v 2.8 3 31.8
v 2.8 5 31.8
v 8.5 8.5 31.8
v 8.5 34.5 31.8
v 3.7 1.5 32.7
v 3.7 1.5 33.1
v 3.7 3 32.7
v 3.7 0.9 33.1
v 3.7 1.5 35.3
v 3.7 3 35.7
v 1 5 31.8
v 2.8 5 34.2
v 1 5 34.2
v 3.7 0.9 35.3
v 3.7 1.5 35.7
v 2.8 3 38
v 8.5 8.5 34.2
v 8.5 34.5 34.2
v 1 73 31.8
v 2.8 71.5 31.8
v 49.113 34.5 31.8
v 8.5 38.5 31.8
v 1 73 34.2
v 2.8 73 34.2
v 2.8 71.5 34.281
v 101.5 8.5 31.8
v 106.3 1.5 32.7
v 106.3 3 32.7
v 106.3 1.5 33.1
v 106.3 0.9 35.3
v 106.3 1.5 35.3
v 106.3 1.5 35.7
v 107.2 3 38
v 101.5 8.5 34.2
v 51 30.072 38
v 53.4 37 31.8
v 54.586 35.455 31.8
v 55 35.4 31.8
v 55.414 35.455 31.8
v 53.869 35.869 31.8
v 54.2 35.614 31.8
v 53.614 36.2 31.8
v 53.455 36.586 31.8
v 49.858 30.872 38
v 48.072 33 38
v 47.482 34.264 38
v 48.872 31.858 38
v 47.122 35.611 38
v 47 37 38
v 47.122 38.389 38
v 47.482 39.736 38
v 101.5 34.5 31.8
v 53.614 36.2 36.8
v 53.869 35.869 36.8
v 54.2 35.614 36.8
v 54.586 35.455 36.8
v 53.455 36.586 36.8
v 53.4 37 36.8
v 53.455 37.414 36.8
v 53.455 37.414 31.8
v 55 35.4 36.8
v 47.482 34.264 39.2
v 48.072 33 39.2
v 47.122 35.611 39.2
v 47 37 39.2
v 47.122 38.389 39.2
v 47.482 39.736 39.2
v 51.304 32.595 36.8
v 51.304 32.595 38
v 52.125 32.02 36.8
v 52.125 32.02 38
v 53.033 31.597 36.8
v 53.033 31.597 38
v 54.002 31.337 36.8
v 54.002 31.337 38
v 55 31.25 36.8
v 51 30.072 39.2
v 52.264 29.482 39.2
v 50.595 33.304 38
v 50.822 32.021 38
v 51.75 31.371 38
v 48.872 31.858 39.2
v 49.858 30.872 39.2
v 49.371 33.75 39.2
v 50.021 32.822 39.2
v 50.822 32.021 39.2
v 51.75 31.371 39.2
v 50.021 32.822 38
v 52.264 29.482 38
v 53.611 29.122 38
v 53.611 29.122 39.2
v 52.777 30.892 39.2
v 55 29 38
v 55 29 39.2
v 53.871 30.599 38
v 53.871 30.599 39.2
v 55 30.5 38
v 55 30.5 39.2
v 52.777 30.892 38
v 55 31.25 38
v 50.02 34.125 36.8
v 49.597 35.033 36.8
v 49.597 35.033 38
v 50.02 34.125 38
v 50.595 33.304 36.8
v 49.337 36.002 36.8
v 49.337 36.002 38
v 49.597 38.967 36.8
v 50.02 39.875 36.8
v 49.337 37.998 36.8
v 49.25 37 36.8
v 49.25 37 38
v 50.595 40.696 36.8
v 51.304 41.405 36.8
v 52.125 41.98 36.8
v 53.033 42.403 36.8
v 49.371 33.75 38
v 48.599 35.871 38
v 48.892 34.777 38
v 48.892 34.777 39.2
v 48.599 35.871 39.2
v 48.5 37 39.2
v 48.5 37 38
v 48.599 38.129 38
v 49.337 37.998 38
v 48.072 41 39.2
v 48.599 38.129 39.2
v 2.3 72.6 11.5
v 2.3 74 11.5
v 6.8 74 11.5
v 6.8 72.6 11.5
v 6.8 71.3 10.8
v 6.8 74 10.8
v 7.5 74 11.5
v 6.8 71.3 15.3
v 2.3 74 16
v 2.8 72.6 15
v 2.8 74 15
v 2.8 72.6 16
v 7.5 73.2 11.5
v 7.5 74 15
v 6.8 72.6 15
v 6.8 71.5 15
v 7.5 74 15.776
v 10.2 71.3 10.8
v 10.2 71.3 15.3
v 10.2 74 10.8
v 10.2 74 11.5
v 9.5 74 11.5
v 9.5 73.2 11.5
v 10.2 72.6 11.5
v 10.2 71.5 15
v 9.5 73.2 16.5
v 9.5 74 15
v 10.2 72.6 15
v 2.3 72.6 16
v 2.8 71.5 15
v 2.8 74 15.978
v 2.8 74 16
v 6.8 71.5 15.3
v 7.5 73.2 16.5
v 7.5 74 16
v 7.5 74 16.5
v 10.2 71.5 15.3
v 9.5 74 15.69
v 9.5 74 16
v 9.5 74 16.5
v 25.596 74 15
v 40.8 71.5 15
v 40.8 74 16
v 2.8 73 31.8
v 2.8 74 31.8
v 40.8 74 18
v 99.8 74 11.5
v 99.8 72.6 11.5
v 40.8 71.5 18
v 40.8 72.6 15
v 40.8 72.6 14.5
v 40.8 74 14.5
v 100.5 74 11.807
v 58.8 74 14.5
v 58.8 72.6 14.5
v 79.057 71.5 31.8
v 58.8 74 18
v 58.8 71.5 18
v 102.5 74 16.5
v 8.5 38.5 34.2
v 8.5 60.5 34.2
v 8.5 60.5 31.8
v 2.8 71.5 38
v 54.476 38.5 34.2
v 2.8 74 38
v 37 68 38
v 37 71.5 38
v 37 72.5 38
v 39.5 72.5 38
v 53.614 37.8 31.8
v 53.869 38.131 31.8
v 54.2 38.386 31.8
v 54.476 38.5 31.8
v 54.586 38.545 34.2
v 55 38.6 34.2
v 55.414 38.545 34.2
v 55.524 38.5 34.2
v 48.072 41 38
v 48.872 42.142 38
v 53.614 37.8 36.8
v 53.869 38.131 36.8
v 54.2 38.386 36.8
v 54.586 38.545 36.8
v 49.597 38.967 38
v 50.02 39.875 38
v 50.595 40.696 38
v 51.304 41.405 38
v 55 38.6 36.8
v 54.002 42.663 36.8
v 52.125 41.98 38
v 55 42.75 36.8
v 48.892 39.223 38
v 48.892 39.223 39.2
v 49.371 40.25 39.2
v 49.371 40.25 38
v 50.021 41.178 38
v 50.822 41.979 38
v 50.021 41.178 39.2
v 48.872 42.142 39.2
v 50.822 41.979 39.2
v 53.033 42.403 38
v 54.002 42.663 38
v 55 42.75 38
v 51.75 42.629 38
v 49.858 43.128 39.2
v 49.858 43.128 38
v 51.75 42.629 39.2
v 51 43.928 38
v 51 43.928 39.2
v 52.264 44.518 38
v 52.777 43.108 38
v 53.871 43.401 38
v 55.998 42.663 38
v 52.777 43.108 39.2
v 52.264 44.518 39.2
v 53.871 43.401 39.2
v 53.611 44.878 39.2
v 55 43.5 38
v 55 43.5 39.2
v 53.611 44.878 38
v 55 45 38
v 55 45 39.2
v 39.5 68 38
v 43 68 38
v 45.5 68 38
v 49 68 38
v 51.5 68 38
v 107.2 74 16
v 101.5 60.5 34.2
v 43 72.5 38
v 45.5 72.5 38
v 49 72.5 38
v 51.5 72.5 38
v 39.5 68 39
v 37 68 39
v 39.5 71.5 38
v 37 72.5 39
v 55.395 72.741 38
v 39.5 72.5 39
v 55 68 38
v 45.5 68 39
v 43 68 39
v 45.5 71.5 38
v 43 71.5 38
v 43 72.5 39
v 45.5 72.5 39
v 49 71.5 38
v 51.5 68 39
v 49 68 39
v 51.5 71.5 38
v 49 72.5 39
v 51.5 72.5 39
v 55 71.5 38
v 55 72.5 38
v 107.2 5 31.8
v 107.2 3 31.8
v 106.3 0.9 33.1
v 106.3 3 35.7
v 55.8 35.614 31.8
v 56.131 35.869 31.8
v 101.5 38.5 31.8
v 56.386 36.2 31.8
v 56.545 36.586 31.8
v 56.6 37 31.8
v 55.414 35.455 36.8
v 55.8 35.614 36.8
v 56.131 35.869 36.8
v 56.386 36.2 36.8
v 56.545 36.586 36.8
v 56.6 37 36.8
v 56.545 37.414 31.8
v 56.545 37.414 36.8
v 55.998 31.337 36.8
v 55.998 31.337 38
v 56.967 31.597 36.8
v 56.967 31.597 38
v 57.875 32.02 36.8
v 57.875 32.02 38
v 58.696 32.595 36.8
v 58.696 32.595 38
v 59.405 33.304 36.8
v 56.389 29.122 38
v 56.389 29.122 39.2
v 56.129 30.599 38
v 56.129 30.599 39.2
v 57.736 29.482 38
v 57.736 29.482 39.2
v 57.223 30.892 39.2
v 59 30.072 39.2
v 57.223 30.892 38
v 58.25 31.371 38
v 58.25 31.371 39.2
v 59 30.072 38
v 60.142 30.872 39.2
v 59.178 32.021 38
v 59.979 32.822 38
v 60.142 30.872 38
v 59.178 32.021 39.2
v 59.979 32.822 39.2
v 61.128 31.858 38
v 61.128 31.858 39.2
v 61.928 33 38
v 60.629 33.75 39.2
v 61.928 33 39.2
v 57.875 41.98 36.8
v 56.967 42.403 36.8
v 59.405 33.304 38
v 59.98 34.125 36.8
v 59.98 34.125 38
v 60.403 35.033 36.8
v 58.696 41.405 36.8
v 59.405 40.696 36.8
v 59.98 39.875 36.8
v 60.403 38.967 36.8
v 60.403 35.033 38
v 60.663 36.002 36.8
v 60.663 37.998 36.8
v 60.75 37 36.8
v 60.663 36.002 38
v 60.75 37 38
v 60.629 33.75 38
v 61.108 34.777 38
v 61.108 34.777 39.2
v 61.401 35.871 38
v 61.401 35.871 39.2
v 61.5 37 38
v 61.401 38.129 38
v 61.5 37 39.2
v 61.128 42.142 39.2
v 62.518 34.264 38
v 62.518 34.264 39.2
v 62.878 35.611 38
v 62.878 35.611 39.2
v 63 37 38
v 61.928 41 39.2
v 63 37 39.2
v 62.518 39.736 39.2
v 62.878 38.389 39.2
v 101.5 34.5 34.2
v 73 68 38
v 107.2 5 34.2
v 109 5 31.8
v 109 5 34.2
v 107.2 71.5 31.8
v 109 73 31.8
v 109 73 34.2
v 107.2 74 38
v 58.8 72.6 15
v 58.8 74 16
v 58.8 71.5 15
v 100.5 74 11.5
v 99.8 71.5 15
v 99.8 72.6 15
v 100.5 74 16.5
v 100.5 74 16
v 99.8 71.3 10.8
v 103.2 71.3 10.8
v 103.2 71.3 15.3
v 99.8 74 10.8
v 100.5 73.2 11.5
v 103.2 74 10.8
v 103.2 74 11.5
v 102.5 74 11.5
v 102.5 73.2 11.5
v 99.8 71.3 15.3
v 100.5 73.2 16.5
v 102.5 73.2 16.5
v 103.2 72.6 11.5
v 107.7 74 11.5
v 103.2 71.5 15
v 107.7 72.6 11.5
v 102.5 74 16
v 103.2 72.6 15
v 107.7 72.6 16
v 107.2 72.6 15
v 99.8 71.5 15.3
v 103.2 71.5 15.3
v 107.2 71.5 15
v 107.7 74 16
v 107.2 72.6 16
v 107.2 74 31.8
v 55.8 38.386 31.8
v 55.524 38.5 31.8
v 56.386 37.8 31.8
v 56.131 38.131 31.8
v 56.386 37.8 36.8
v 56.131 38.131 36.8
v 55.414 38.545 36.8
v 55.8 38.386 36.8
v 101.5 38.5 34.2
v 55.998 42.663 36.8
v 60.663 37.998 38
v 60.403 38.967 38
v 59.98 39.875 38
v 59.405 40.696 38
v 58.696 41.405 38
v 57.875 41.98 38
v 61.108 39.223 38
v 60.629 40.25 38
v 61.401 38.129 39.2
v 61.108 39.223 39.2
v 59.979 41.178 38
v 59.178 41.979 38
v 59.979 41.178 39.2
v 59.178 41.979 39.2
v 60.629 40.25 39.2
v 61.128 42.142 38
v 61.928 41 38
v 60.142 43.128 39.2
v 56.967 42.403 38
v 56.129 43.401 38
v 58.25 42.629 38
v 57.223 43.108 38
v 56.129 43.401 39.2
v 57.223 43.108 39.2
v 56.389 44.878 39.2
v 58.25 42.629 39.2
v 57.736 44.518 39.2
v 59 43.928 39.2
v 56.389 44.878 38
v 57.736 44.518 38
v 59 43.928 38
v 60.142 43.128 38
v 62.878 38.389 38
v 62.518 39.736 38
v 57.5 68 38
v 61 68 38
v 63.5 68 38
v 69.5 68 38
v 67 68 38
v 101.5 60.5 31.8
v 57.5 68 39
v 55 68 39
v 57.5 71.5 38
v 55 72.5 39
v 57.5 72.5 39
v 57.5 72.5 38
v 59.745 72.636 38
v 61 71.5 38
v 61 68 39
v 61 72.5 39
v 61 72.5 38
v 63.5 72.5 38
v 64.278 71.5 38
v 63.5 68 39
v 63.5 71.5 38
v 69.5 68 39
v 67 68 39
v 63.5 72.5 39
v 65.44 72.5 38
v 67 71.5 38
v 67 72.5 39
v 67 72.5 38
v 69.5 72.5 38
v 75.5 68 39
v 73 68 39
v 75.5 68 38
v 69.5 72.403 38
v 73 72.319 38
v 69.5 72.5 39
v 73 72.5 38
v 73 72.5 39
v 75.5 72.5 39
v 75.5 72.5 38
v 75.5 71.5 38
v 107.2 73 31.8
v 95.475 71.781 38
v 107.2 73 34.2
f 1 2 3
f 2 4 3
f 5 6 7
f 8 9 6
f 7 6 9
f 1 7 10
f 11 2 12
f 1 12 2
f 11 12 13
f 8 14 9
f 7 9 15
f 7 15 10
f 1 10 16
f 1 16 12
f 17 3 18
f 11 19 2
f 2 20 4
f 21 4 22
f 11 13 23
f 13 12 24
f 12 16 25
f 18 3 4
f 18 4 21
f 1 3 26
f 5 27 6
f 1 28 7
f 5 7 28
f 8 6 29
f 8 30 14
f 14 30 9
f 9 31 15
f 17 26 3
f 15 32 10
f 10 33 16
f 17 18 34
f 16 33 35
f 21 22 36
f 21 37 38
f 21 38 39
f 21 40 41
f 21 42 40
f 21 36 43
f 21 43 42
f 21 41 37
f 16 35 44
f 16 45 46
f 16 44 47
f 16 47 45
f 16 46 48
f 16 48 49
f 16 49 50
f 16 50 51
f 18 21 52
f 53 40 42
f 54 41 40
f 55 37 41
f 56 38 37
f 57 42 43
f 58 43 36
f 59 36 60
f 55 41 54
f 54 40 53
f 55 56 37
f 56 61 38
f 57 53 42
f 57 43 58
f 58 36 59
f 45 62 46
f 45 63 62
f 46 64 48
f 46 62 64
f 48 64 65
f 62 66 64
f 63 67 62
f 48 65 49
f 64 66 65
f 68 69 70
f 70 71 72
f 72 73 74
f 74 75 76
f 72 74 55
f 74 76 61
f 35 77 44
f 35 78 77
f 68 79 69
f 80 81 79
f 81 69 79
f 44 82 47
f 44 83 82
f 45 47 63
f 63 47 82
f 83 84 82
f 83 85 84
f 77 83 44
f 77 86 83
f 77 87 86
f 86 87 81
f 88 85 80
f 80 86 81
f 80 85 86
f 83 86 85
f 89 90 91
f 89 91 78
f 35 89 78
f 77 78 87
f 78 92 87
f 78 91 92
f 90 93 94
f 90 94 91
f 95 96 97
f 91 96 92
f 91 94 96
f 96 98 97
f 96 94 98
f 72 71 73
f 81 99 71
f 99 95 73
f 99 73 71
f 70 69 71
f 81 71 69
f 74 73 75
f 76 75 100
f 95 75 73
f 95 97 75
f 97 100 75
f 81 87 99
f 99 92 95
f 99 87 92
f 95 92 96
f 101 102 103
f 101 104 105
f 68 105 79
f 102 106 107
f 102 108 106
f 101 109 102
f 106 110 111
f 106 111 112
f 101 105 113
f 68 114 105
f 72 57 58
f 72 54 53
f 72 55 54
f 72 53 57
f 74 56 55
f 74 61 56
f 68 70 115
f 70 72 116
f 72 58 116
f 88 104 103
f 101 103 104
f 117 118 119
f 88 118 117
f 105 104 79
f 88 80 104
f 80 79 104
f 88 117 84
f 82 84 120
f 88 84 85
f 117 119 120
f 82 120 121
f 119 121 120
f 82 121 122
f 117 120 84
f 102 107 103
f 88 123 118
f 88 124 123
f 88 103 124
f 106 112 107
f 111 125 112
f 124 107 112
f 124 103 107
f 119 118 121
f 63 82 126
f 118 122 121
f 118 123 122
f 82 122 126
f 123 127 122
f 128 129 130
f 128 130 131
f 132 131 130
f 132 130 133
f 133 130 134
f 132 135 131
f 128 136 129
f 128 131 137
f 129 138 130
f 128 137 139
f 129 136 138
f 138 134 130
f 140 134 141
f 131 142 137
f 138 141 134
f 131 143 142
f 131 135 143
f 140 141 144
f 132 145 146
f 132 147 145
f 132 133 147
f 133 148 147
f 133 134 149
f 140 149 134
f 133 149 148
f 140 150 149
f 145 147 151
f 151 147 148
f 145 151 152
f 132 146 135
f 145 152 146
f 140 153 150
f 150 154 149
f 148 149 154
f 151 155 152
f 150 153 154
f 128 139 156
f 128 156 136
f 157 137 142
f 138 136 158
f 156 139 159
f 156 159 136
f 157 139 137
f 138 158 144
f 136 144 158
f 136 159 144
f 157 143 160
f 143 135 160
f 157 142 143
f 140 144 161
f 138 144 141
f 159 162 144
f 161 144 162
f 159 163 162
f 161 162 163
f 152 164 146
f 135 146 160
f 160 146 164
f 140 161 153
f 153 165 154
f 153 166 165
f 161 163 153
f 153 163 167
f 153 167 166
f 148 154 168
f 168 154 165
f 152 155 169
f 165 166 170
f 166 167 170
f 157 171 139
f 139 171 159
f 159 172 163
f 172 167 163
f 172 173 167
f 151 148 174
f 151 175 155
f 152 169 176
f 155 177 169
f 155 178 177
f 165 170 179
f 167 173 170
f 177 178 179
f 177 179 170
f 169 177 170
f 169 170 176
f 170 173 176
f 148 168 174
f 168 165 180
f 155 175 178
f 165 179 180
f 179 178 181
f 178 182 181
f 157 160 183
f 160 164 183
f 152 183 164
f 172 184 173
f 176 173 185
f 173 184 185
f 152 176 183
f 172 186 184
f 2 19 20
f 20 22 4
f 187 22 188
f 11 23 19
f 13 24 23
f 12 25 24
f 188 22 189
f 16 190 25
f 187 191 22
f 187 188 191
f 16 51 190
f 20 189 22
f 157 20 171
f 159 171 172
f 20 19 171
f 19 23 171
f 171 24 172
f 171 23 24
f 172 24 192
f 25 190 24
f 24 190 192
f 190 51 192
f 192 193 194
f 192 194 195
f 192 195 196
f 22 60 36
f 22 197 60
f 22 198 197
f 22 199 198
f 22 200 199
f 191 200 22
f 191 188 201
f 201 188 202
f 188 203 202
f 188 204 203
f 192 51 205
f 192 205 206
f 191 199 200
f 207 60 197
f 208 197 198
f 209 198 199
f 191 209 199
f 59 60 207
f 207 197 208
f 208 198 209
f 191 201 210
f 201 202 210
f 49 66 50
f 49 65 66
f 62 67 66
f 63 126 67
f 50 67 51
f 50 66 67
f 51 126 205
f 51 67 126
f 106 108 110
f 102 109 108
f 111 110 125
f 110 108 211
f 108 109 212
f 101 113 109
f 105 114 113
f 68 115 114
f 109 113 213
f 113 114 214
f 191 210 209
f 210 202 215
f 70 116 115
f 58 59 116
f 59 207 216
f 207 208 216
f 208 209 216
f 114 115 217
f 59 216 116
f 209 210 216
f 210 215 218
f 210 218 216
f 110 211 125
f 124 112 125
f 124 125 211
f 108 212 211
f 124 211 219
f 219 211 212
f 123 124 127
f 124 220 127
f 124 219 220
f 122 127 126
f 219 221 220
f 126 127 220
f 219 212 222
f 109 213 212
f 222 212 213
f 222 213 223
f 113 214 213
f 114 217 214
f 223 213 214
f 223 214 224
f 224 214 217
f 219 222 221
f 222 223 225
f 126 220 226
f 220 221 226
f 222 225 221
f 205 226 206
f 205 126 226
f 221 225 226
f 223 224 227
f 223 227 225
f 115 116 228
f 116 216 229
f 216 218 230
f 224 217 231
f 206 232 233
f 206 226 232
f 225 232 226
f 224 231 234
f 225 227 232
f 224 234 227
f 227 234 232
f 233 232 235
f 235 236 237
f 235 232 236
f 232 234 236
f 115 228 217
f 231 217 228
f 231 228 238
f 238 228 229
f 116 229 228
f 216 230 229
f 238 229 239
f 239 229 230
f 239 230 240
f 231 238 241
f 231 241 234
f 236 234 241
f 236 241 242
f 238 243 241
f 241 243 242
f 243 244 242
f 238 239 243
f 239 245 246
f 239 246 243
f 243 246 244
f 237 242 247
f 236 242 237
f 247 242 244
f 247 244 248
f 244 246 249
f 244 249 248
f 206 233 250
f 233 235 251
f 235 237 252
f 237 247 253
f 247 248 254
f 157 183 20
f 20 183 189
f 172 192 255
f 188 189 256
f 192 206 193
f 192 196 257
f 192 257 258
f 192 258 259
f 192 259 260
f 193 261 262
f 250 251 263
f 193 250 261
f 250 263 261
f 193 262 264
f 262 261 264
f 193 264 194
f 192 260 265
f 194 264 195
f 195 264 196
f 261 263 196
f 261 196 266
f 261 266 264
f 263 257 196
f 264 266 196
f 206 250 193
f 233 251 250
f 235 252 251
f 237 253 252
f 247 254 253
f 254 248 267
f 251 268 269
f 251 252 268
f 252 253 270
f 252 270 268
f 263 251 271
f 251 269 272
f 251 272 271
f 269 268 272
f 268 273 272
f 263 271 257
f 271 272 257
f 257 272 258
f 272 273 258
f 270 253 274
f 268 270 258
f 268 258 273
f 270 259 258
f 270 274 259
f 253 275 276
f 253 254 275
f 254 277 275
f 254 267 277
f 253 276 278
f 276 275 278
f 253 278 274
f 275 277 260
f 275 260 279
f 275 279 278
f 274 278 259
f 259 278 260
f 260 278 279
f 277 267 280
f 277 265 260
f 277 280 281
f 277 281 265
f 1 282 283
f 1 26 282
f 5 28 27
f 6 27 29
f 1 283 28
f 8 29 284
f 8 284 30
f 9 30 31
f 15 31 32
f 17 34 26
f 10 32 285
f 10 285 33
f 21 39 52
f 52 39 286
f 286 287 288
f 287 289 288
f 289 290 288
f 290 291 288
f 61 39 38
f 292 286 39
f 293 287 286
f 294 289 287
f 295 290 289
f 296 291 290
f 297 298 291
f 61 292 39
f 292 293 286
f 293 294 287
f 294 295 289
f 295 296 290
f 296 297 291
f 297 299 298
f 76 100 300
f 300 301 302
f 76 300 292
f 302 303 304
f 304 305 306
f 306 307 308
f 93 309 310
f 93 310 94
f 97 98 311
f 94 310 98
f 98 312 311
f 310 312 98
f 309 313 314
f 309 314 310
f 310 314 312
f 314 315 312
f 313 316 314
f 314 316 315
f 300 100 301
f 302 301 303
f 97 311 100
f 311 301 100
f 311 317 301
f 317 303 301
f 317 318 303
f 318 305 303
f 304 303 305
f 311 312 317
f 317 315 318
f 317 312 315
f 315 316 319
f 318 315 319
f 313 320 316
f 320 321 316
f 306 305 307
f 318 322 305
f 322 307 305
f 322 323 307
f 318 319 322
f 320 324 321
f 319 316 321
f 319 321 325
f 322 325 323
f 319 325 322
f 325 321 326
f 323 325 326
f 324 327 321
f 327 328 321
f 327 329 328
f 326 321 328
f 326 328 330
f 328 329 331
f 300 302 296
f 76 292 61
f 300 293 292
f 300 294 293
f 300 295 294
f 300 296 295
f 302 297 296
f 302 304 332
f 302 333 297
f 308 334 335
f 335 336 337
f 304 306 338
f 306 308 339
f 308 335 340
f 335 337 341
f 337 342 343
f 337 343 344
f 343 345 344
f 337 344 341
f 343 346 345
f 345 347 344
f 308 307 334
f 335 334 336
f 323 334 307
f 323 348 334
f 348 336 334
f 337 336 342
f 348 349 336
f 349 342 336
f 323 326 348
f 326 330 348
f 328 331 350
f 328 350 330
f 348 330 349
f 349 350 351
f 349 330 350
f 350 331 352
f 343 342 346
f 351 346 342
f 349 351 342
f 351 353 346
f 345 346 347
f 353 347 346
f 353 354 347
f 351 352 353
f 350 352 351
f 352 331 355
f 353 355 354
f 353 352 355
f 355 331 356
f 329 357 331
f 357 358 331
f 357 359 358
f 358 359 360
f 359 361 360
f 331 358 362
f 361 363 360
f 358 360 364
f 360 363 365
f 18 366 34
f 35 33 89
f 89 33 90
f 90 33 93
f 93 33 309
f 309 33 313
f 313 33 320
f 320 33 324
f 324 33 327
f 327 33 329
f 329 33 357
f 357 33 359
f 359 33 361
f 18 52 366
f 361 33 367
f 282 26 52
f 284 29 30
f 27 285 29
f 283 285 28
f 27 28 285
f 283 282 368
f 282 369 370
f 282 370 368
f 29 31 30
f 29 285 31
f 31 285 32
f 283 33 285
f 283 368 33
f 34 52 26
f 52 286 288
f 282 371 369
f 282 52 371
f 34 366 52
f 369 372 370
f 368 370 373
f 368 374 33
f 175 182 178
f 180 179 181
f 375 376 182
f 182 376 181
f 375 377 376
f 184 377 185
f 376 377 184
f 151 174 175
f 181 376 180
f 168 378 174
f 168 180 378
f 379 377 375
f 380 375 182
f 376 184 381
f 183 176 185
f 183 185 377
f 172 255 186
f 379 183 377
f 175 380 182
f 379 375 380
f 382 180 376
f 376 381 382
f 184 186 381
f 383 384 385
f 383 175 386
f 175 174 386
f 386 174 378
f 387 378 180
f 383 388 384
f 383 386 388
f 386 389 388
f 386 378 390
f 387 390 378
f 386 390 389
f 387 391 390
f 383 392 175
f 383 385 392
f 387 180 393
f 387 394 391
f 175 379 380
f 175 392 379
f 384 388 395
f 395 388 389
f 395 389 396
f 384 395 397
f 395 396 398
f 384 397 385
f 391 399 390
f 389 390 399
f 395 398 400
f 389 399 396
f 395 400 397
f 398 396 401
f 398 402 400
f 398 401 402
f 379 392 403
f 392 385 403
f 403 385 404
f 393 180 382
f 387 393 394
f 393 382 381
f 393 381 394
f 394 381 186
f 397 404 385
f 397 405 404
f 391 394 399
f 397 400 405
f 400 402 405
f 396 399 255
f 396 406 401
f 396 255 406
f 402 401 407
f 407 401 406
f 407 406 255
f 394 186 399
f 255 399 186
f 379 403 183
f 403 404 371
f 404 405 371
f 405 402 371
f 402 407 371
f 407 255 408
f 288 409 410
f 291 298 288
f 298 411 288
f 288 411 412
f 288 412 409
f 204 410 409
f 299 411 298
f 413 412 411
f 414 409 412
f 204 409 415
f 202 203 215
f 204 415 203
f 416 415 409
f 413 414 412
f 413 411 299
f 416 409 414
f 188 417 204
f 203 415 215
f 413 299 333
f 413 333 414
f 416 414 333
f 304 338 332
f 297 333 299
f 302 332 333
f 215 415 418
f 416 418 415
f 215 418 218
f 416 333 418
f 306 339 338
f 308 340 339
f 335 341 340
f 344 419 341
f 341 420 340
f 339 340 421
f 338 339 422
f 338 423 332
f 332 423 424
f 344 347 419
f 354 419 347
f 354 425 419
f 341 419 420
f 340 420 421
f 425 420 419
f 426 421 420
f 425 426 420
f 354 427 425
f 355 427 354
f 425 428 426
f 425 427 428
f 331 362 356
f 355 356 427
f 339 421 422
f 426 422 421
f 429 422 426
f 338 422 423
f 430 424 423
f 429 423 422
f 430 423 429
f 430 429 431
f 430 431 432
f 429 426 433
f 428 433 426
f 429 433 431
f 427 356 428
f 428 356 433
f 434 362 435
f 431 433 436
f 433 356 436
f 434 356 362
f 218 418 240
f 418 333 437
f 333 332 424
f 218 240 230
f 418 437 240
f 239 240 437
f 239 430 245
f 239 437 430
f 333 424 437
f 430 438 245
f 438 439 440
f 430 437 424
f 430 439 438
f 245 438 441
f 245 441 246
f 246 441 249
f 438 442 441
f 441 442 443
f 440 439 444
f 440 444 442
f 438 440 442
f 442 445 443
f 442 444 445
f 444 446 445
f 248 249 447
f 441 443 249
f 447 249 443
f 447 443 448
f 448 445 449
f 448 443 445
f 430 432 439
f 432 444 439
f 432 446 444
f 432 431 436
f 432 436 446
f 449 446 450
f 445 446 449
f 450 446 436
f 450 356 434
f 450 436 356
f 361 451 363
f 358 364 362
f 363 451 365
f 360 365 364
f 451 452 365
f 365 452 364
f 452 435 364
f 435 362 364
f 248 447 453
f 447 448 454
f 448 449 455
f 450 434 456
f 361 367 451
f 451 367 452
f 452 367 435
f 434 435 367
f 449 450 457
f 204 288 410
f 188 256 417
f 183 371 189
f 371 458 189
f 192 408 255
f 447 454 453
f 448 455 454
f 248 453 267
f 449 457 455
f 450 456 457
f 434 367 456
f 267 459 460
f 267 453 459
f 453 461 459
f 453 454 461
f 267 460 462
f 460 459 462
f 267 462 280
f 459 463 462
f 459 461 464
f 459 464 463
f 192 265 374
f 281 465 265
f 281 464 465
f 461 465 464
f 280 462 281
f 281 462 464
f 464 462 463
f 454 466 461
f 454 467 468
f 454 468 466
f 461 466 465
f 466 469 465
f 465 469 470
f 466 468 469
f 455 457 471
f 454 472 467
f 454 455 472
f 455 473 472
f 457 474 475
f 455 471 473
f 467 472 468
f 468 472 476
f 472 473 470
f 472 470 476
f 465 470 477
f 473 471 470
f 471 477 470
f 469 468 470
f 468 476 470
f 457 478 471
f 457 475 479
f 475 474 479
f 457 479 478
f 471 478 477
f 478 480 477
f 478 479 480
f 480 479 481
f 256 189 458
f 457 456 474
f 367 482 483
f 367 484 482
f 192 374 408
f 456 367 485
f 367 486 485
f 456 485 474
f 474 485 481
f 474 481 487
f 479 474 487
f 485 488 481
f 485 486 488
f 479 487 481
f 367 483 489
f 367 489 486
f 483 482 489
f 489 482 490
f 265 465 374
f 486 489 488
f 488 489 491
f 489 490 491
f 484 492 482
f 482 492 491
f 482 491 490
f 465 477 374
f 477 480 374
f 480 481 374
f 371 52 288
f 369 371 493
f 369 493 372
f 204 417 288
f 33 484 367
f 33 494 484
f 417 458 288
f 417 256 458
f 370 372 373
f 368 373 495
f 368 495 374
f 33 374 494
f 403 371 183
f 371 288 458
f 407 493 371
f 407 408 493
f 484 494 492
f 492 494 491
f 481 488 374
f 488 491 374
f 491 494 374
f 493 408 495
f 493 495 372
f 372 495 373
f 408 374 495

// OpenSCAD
// file: ../../00_common/parameters.scad
// =============================================================================
// OpenMotorBridge - Global CAD Parameters & Settings
// =============================================================================
// File: hardware/cad/scad/00_common/parameters.scad
// Description: Global dimensional constants, manufacturing clearances and
//              circle resolution ($fn) for all OpenSCAD modules.
// =============================================================================

// --- 1. Circle & Curve Resolution ---
$fn = 60; // Smooth cylinders and holes for high-quality MJF 3D printing

// --- 2. Central Main Box Dimensions (v10 Dual-Rail Monocoque Slide-In Platform) ---
MAIN_BOX_OUTER_L      = 110.0; // Outer length in X (mm)
MAIN_BOX_OUTER_W      = 74.0;  // Outer width in Y (mm)
MAIN_BOX_TOTAL_H      = 38.0;  // Total height in Z (mm)
MAIN_BOX_LOWER_H      = 17.0;  // Reference lower deck height (mm)
MAIN_BOX_MID_H        = 15.0;  // Reference mid tray height (mm)
MAIN_BOX_LID_H        = 6.0;   // L-Slide lid top thickness (mm)
MAIN_BOX_WALL         = 2.5;   // Nominal wall thickness in PA12 (mm)
MAIN_BOX_CORNER_R     = 3.5;   // Vertical corner fillet radius (mm)

// Dual-Rail Slide-In Guide Heights:
MAIN_BOX_RAIL1_Z      = 18.0;  // Rail 1 center height: Slide-In Zwischenboden (mm)
MAIN_BOX_RAIL1_H      = 2.4;   // Rail 1 groove height (mm)
MAIN_BOX_RAIL1_DEPTH  = 1.5;   // Rail 1 groove depth in sidewall (mm)
MAIN_BOX_RAIL2_Z      = 33.0;  // Rail 2 center height: L-Slide Lid C-groove (mm)
MAIN_BOX_RAIL2_H      = 2.8;   // Rail 2 groove height (mm)
MAIN_BOX_RAIL2_DEPTH  = 1.8;   // Rail 2 groove depth in sidewall (mm)
MAIN_BOX_REAR_SILL_H  = 15.0;  // Fixed lower rear sill height (mm)

// --- 3. Satellite Pod Dimensions (Universal Enlarged Envelope) ---
POD_OUTER_L           = 150.0; // Outer length in X (mm, standardized for serial PCBA 03 + Cardo/Sena/OMM)
POD_OUTER_W           = 70.0;  // Outer width in Y (mm)
POD_OUTER_H           = 38.0;  // Outer height in Z (mm)
POD_WALL              = 3.5;   // Nominal wall thickness (mm)
POD_BULKHEAD_X        = 18.0;  // Partition bulkhead position in X (mm)
POD_CHAMBER_L         = 132.0; // Sliding chamber length in X (mm, clears 130mm sled + 2mm margin)
POD_CHAMBER_W         = 63.0;  // Sliding chamber width in Y (mm)
POD_CHAMBER_H         = 31.0;  // Sliding chamber height in Z (mm)

// --- 4. Pod Linear Guide Rails (Poka-Yoke Tongue & Groove) ---
POD_GROOVE_W          = 3.0;   // Internal guide groove width in Z (mm)
POD_GROOVE_DEPTH      = 1.5;   // Internal guide groove depth in Y (mm)
POD_GROOVE_LEFT_Z     = 10.0;  // Center height of left groove (mm)
POD_GROOVE_RIGHT_Z    = 18.0;  // Center height of right groove (mm, asym offset)

CARTRIDGE_TONGUE_W    = 2.6;   // Cartridge tongue rail height in Z (mm, 0.2mm clearance)
CARTRIDGE_TONGUE_PROT = 1.4;   // Cartridge tongue protrusion in Y (mm, 0.1mm clearance)
CARTRIDGE_CHAMFER_L   = 4.0;   // 30° lead-in chamfer nose length (mm)

// --- 5. Cartridge Dimensions (Enlarged Universal Sled) ---
CARTRIDGE_BASE_L      = 130.0; // Sled length in X (mm, accommodates PCBA 03 + OEM Cardo Air-Mount/Sena/OMM serial layout)
CARTRIDGE_BASE_W      = 58.0;  // Sled width in Y (mm)
CARTRIDGE_BASE_H      = 28.0;  // Sled height in Z (mm)
CARTRIDGE_FACE_L      = 4.0;   // Front faceplate thickness in X (mm)
CARTRIDGE_FACE_W      = 64.0;  // Front faceplate width in Y (mm)
CARTRIDGE_FACE_H      = 34.0;  // Front faceplate height in Z (mm)

// --- 5a. RF Interface & Sealing Dimensions ---
SMA_BORE_R            = 3.25;  // Ø 6.5 mm through-hole for standard SMA bulkhead
SMA_ORECESS_R         = 4.75;  // Ø 9.5 mm recess for waterproof silicone O-ring
SMA_ORECESS_DEPTH     = 1.2;   // 1.2 mm deep O-ring compression pocket

// --- 5b. Magnetic Anti-Theft Lock System ---
LATCH_PIVOT_X         = 65.0;  // Center pivot position along sled X (mm, centered on 130mm sled)
LATCH_MAGNET_X        = 53.0;  // Ferromagnetic anchor position along sled X (mm)
LATCH_TOOTH_X         = 77.0;  // Locking sawtooth pawl position along sled X (mm)
LATCH_ARM_H           = 6.0;   // Rocker lever height in Z (mm)
LATCH_ARM_THICK       = 2.6;   // Rocker beam thickness in Y (mm)
LATCH_MAGNET_PIN_DIA  = 6.2;   // Bore for Ø 6.0 mm steel dowel pin (mm)
LATCH_SPRING_DIA      = 3.8;   // Bore for Ø 3.5 mm return compression spring (mm)

// --- 6. Standard Captive Hex Nut Pockets (DIN 934 / DIN 985 with +0.2 mm MJF/FDM clearance) ---
NUT_M2_SW             = 4.2;   // M2 across flats (nominal 4.0 mm)
NUT_M2_H              = 1.8;   // M2 thickness (nominal 1.6 mm)
NUT_M2_5_SW           = 5.2;   // M2.5 across flats (nominal 5.0 mm)
NUT_M2_5_H            = 2.2;   // M2.5 thickness (nominal 2.0 mm)
NUT_M3_SW             = 5.7;   // M3 across flats (nominal 5.5 mm)
NUT_M3_H              = 2.6;   // M3 thickness (nominal 2.4 mm)
NUT_M4_SW             = 7.2;   // M4 across flats (nominal 7.0 mm)
NUT_M4_H              = 3.4;   // M4 thickness (nominal 3.2 mm)
NUT_M5_SW             = 8.2;   // M5 across flats (nominal 8.0 mm)
NUT_M5_H              = 4.2;   // M5 thickness (nominal 4.0 mm)

// Direct Plastic Thread-Forming / Self-Tapping Pilot Holes in PA12 (100% Soldering-Iron Free)
M2_PILOT_HOLE_R       = 0.85;  // Core hole for M2 screws in PA12 (Ø 1.7 mm)
M2_5_PILOT_HOLE_R     = 1.05;  // Core hole for M2.5 screws in PA12 (Ø 2.1 mm)
M3_PILOT_HOLE_R       = 1.25;  // Core hole for M3 screws in PA12 (Ø 2.5 mm)

// --- 7. Screw & Clearance Dimensions ---
M2_SCREW_HOLE_R       = 1.1;   // M2 clearance hole (r = 1.1 mm -> Ø 2.2 mm)
M2_5_SCREW_HOLE_R     = 1.4;   // M2.5 clearance hole (r = 1.4 mm -> Ø 2.8 mm)
M3_SCREW_HOLE_R       = 1.65;  // M3 clearance hole (r = 1.65 mm -> Ø 3.3 mm)
M4_SCREW_HOLE_R       = 2.2;   // M4 clearance hole (r = 2.2 mm -> Ø 4.4 mm)
M8_BORE_R             = 4.0;   // M8 cable through-bore (r = 4.0 mm -> Ø 8.0 mm)
M8_STUDS_OUTER_R      = 6.0;   // M8 neck outer radius (Ø 12.0 mm)

// --- 8. Universal Front Node Enclosure Dimensions (Type E: 98 x 68 x 25 mm) ---
FRONT_NODE_PCB_L      = 82.0;  // PCB length in X (mm, PCBA 05)
FRONT_NODE_PCB_W      = 50.0;  // PCB width in Y (mm, PCBA 05)
FRONT_NODE_PCB_H      = 1.6;   // PCB thickness in Z (mm)
FRONT_NODE_PCB_R      = 2.5;   // PCB corner radius (mm)

FRONT_NODE_CHAMBER_L  = 86.0;  // Internal chamber length in X (mm, 2mm margin per side)
FRONT_NODE_CHAMBER_W  = 56.0;  // Internal chamber width in Y (mm, 3mm margin per side)
FRONT_NODE_TUB_H      = 17.5;  // Lower tub depth in Z (mm)
FRONT_NODE_LID_H      = 7.5;   // Upper lid height in Z (mm)
FRONT_NODE_WALL       = 2.5;   // Wall thickness in HP MJF PA12 (mm)
FRONT_NODE_CORNER_R   = 4.0;   // Outer enclosure corner radius (mm)

FRONT_NODE_OUTER_L    = FRONT_NODE_CHAMBER_L + 2 * FRONT_NODE_WALL + 7.0; // 98.0 mm
FRONT_NODE_OUTER_W    = FRONT_NODE_CHAMBER_W + 2 * FRONT_NODE_WALL + 7.0; // 68.0 mm
FRONT_NODE_OUTER_H    = FRONT_NODE_TUB_H + FRONT_NODE_LID_H;              // 25.0 mm

// PCB Standoff Heights & Radii (100% Soldering-Iron Free)
FRONT_NODE_STANDOFF_H = 3.0;   // Height of PCB standoffs from floor (mm)
FRONT_NODE_STANDOFF_R = 3.0;   // Outer radius of M2.5 screw bosses (mm)
FRONT_NODE_CORE_HOLE_R= M2_5_PILOT_HOLE_R; // Core hole for direct M2.5 screw engagement (Ø 2.1 mm)

// AMPS 4-Hole Mounting Pattern (38 x 30 mm with DIN 934 M4 Captive Nut Pockets)
AMPS_SPACING_X        = 38.0;  // AMPS hole distance in X (mm)
AMPS_SPACING_Y        = 30.0;  // AMPS hole distance in Y (mm)
AMPS_NUT_SW           = NUT_M4_SW; // Captive M4 hex nut pocket across flats (7.2 mm)
AMPS_NUT_H            = NUT_M4_H;  // Captive M4 hex nut pocket depth (3.4 mm)

// Acoustic Vent for Knowles SPH0645 MEMS
FRONT_NODE_MIC_HOLE_R = 1.25;  // Sound canal radius (Ø 2.5 mm)
FRONT_NODE_MIC_MEMB_R = 3.0;   // Gore ePTFE membrane pocket radius (Ø 6.0 mm)
FRONT_NODE_MIC_MEMB_D = 0.8;   // Membrane pocket depth (mm)
// main file
// =============================================================================
// OpenMotorBridge - Central Main Box: L-Slide Lid with Deadbolt Lock (v10.0)
// =============================================================================
// File: hardware/cad/scad/01_main_box/parts/020_slide_lid.scad
// Description: L-shaped Monocoque Central Box Lid (horizontal slide lid +
//              integrated rear Heckwand/apron) utilizing the v10 Dual-Rail
//              Slide-In Principle:
//
// 1. Dual-Rail Track 2 Kinematics (Z = 33.0 mm):
//    - Lateral guide tongues sliding smoothly into Rail 2 C-grooves of the tub.
//    - Solid PA12 retaining roof lip of the tub (Z = 35.5..38.0 mm) captivates
//      the tongues, preventing any vertical lift or prying under high vibration.
//
// 2. Front Wedge-Lock Nose (Keilanzug):
//    - 15° wedge nose engaging the front tub undercut pocket (Y = wall).
//    - Converts horizontal sliding force into vertical/forward sealing pressure
//      against the front perimeter gasket.
//
// 3. Integrated Gore ePTFE Breather Vent Seat:
//    - Recessed circular nest (Ø 12 mm x 1.2 mm) with central Ø 3.2 mm vent bore.
//    - Concentric protective water-deflector labyrinth shroud (IP69K washdown safe).
//
// 4. Integrated Vertical Heckwand & Drip Apron (L-Profile):
//    - Monolithic rear vertical drop wall closing the rear insertion portal (Z = 15..38 mm).
//    - External drip apron (Tropfnase) overlapping the lower sill rebate (Z = 11..15 mm)
//      for a labyrinth watertight seal.
//
// 5. 100% Non-Metallic PA12 Deadbolt Latch System:
//    - Dual rear corner deadbolt locking legs (X = 6.5..10.5 mm & X = 99.5..103.5 mm)
//      with 45° lead-in chamfers for automatic "Slam-to-Shut" latching.
//    - Snap securely into the lower sill sockets at Z = 11.0 mm.
//    - Service release pry slots accessible from the rear.
// =============================================================================

include <../../00_common/parameters.scad>;

module main_box_slide_lid(
    length = MAIN_BOX_OUTER_L,
    width  = MAIN_BOX_OUTER_W,
    height = MAIN_BOX_TOTAL_H,
    wall   = MAIN_BOX_WALL
) {
    lid_plate_th = height - MAIN_BOX_RAIL2_Z + MAIN_BOX_RAIL2_H/2.0; // ~6.4 mm top structure
    rail2_z      = MAIN_BOX_RAIL2_Z;
    rail2_h      = 2.4; // Tongue height (with 0.4 mm manufacturing clearance)
    tongue_prot  = 1.5; // Tongue protrusion into 1.8 mm C-groove (0.3 mm clearance)
    
    // Heckwand vertical drop from top lid (Z = height) down to sill (Z = 15.0 mm)
    heck_z_top   = height;
    heck_z_bot   = MAIN_BOX_REAR_SILL_H;
    drip_apron_h = 3.5; // Skirt overlapping sill down to Z = 11.5 mm
    
    color([0.22, 0.24, 0.26]) {
        difference() {
            union() {
                // 1. Horizontal Slide Lid Plate (Z = rail2_z - rail2_h/2.0 .. height)
                // Width along X: inside tub (wall + 0.3 .. length - wall - 0.3)
                translate([wall + 0.3, wall + 0.5, rail2_z - rail2_h/2.0]) {
                    cube([
                        length - 2*wall - 0.6,
                        width - wall - 0.5,
                        height - (rail2_z - rail2_h/2.0)
                    ], center=false);
                }

                // 2. Left Lateral Guide Tongue (engages Left Rail 2 C-Groove)
                translate([wall - tongue_prot, wall + 2.5, rail2_z - rail2_h/2.0]) {
                    // Tongue body
                    cube([tongue_prot + 0.4, width - wall - 3.5, rail2_h], center=false);
                    // 45° Lead-in chamfer at front tip
                    translate([0, -2.0, 0])
                        polyhedron(
                            points=[
                                [0, 0, 0], [tongue_prot, 0, 0], [tongue_prot, 2.0, 0], [0, 2.0, 0],
                                [tongue_prot, 2.0, rail2_h], [tongue_prot, 2.0, rail2_h], [tongue_prot, 0, rail2_h], [0, 2.0, rail2_h]
                            ],
                            faces=[
                                [0,1,2,3], [4,5,6,7], [0,3,7,6], [1,2,5,4], [0,1,4,7], [3,2,5,6]
                            ]
                        );
                }

                // 3. Right Lateral Guide Tongue (engages Right Rail 2 C-Groove)
                translate([length - wall - 0.4, wall + 2.5, rail2_z - rail2_h/2.0]) {
                    // Tongue body
                    cube([tongue_prot + 0.4, width - wall - 3.5, rail2_h], center=false);
                    // 45° Lead-in chamfer at front tip
                    translate([tongue_prot, -2.0, 0])
                        polyhedron(
                            points=[
                                [0, 0, 0], [-tongue_prot, 0, 0], [-tongue_prot, 2.0, 0], [0, 2.0, 0],
                                [-tongue_prot, 2.0, rail2_h], [-tongue_prot, 2.0, rail2_h], [-tongue_prot, 0, rail2_h], [0, 2.0, rail2_h]
                            ],
                            faces=[
                                [0,1,2,3], [4,5,6,7], [0,3,7,6], [1,2,5,4], [0,1,4,7], [3,2,5,6]
                            ]
                        );
                }

                // 4. Front Wedge-Lock Nose (Keilanzug extending into front pocket)
                translate([wall + 1.2, wall - 1.0, rail2_z - 0.3]) {
                    cube([length - 2*wall - 2.4, 1.6, rail2_h + 0.6], center=false);
                    // 20° Lead-in wedge bevel on front face
                    translate([0, -0.6, 0.4])
                        cube([length - 2*wall - 2.4, 0.6, rail2_h - 0.2], center=false);
                }

                // 5. Rear Vertical Heckwand (L-Profile Vertical Leg, Y = width - wall .. width)
                // Spans from Z = heck_z_bot (15.0 mm) up to top lid Z = height (38.0 mm)
                translate([wall + 0.3, width - wall, heck_z_bot]) {
                    cube([length - 2*wall - 0.6, wall, heck_z_top - heck_z_bot], center=false);
                }

                // 6. External Drip Apron (Tropfnase / Overlapping Skirt, Z = 11.5 .. 15.5 mm)
                // Overlaps the rebate of the lower sill at Y = width - 1.5 mm
                translate([wall - 0.2, width - 1.4, heck_z_bot - drip_apron_h]) {
                    cube([length - 2*wall + 0.4, 1.4, drip_apron_h + 1.0], center=false);
                }

                // 7. Dual Non-Metallic PA12 Deadbolt Locking Legs
                // Left locking deadbolt (X = 6.8 .. 10.2 mm)
                translate([wall + 4.3, width - wall - 0.2, heck_z_bot - 4.2]) {
                    cube([3.4, wall + 0.2, 4.5], center=false);
                    // 45° Locking tooth barb
                    translate([0, 0, -1.0])
                        polyhedron(
                            points=[
                                [0, 0, 0], [3.4, 0, 0], [3.4, wall+0.2, 0], [0, wall+0.2, 0],
                                [0, 0, 1.0], [3.4, 0, 1.0], [3.4, wall+0.2, 1.0], [0, wall+0.2, 1.0]
                            ],
                            faces=[
                                [0,1,2,3], [4,5,6,7], [0,3,7,6], [1,2,5,4], [0,1,4,7], [3,2,5,6]
                            ]
                        );
                }

                // Right locking deadbolt (X = 99.8 .. 103.2 mm)
                translate([length - wall - 7.7, width - wall - 0.2, heck_z_bot - 4.2]) {
                    cube([3.4, wall + 0.2, 4.5], center=false);
                    // 45° Locking tooth barb
                    translate([0, 0, -1.0])
                        polyhedron(
                            points=[
                                [0, 0, 0], [3.4, 0, 0], [3.4, wall+0.2, 0], [0, wall+0.2, 0],
                                [0, 0, 1.0], [3.4, 0, 1.0], [3.4, wall+0.2, 1.0], [0, wall+0.2, 1.0]
                            ],
                            faces=[
                                [0,1,2,3], [4,5,6,7], [0,3,7,6], [1,2,5,4], [0,1,4,7], [3,2,5,6]
                            ]
                        );
                }

                // 8. Gore Breather Vent Protective Concentric Shield Ribs (Top Face)
                translate([length/2.0, width/2.0, height]) {
                    // Outer protective ring Ø 16 mm x h 1.2 mm
                    difference() {
                        cylinder(r=8.0, h=1.2, $fn=36);
                        cylinder(r=6.5, h=1.5, $fn=36);
                    }
                }

                // 9. Ergonomic Slide-In Thumb Grip Flange on Top Rear
                translate([length/2.0 - 18.0, width - 6.0, height]) {
                    for (gx = [0:6.0:36.0]) {
                        translate([gx, 0, 0])
                            cube([2.5, 4.5, 1.0], center=false);
                    }
                }
            }

            // --- SUBTRACTIONS ---

            // 10. Gore ePTFE Breather Vent Nest & Center Bore
            translate([length/2.0, width/2.0, height - 1.2]) {
                // Adhesive membrane recess Ø 11.5 mm x 1.2 mm
                cylinder(r=5.75, h=2.0, $fn=36);
                // Center through-bore Ø 3.2 mm down through the lid
                translate([0, 0, -6.0])
                    cylinder(r=1.6, h=8.0, $fn=24);
            }

            // 11. Rear Deadbolt Release Tool Pry Slots
            // Left release slot (accessible from the rear face with flat screwdriver/coin)
            translate([wall + 4.3 + 0.7, width - 0.8, heck_z_bot - 3.5])
                cube([2.0, 1.2, 5.0], center=false);

            // Right release slot
            translate([length - wall - 7.7 + 0.7, width - 0.8, heck_z_bot - 3.5])
                cube([2.0, 1.2, 5.0], center=false);

            // 12. Rear Wall MicroSD Window Clearance
            // Ensures complete finger & tweezer access to the MicroSD slot in the tub sill
            translate([49.8 - 9.0, width - wall - 0.5, heck_z_bot - 0.5])
                cube([18.0, wall + 1.0, 3.5], center=false);

            // 13. Underside Weight-Optimization & Antenna Clearance Cavities
            // Leaves sturdy 2.5 mm perimeter ribs while removing unnecessary mass
            translate([wall + 6.0, wall + 6.0, rail2_z - rail2_h/2.0 - 0.1]) {
                // Forward pocket
                cube([length - 2*wall - 12.0, 26.0, 2.5], center=false);
                // Rearward pocket
                translate([0, 30.0, 0])
                    cube([length - 2*wall - 12.0, 22.0, 2.5], center=false);
            }
        }
    }
}

// Standalone preview
main_box_slide_lid();
